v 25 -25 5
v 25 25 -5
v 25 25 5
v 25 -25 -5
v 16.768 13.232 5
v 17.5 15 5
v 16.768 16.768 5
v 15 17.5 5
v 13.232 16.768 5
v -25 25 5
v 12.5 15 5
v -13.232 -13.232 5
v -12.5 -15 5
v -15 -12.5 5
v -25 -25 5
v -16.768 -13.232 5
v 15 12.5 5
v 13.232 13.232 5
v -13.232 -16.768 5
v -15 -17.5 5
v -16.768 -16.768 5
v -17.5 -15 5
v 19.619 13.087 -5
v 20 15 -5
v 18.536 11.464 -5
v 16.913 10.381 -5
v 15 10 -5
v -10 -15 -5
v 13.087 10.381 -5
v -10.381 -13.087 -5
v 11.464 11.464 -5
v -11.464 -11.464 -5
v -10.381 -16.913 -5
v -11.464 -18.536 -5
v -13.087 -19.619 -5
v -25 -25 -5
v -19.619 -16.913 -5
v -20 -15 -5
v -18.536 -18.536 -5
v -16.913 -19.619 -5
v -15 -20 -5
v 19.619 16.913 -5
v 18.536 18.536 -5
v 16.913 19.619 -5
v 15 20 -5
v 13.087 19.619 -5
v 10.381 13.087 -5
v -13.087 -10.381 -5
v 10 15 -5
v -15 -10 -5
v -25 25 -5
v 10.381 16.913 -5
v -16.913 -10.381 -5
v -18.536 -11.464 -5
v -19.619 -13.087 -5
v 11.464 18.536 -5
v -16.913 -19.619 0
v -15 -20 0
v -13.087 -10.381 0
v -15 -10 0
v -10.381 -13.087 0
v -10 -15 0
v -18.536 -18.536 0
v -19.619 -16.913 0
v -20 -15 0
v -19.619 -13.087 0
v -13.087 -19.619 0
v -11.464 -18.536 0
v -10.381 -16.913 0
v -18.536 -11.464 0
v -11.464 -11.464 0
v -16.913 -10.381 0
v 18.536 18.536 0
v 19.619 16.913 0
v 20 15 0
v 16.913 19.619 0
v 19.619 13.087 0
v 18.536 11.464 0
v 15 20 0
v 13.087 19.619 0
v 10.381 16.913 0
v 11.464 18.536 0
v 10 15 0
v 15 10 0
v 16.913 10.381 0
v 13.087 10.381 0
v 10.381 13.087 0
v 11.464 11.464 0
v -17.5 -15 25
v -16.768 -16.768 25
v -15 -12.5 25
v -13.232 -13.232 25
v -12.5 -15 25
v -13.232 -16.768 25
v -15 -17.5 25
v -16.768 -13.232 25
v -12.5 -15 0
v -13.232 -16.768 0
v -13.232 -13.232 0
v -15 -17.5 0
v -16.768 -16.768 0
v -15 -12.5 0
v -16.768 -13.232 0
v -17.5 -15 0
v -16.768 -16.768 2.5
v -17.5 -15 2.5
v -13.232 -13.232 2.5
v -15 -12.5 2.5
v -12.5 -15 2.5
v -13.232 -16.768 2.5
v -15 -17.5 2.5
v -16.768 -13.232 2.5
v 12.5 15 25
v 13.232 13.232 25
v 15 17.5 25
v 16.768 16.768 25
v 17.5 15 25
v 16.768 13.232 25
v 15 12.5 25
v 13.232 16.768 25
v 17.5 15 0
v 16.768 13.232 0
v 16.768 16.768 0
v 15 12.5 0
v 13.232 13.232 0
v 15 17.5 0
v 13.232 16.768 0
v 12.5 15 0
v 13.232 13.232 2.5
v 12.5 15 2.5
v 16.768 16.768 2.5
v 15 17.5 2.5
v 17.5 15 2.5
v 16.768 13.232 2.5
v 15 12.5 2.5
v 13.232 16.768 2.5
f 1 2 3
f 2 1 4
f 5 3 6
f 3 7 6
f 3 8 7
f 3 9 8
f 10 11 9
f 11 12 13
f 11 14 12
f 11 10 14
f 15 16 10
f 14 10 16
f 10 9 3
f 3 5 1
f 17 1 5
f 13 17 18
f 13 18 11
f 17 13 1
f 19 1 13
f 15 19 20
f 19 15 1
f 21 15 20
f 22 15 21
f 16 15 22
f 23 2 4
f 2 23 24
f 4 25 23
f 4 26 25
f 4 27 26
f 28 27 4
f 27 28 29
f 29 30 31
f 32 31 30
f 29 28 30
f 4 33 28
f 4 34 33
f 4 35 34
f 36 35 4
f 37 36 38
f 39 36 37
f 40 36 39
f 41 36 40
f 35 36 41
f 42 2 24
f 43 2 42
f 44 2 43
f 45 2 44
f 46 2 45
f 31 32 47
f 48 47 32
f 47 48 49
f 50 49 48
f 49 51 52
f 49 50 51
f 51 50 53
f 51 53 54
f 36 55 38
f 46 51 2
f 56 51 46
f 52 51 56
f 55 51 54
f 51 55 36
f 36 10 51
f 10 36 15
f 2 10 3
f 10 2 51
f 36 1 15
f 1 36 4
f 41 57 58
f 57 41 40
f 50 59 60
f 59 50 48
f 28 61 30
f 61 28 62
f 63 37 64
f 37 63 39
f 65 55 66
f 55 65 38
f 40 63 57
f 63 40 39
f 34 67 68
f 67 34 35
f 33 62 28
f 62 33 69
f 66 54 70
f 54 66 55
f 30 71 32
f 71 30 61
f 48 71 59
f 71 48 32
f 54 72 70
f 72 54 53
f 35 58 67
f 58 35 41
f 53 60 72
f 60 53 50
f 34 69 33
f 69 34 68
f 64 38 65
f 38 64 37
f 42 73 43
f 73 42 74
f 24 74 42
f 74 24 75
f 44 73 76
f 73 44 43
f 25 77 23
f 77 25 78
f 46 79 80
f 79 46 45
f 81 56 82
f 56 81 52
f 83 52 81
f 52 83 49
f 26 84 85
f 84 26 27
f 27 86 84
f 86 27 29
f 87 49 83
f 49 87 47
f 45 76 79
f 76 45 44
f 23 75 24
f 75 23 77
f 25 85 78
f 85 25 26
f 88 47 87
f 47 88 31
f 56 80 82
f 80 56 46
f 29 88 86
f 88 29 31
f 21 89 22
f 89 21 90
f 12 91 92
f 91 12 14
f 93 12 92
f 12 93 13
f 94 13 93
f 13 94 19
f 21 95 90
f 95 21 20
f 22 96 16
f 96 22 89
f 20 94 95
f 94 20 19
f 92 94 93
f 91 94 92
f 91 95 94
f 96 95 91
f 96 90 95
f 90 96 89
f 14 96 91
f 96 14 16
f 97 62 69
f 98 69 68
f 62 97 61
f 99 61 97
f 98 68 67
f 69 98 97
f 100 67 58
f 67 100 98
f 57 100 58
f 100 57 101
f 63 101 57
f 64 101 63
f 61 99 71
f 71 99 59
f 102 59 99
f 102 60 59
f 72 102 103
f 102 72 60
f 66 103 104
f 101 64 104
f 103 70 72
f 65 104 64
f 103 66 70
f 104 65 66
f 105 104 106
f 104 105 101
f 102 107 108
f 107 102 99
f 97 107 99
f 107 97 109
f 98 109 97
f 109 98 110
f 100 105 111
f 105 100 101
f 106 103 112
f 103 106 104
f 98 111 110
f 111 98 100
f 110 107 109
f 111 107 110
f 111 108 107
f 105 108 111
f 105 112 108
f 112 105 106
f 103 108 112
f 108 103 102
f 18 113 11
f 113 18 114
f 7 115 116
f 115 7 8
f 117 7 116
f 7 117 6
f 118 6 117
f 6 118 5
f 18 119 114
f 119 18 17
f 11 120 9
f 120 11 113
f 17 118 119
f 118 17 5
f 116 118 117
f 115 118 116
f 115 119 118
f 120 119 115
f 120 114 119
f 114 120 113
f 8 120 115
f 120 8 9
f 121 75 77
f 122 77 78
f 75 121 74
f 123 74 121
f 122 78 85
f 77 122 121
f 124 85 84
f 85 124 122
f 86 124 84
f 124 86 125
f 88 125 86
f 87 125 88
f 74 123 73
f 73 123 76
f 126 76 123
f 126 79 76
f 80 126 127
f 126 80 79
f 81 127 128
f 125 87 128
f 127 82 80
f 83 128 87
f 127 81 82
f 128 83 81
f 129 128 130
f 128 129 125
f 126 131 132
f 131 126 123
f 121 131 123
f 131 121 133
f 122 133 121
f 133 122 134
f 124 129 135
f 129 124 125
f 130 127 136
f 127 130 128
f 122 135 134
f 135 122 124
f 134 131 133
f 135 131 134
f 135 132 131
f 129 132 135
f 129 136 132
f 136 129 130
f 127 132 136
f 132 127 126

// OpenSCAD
// Base Plate
module base_plate() {
    difference() {
        // Main rectangular block
        cube([50, 50, 10], center = true);
        
        // Circular through-holes
        translate([-15, -15, 0]) cylinder(r = 5, h = 20, center = true);
        translate([15, 15, 0]) cylinder(r = 5, h = 20, center = true);
    }
}

// Bolt
module bolt() {
    union() {
        // Cylindrical rod
        cylinder(r = 2.5, h = 20, center = false); // Shortened bolt length
        
        // Threading (simplified as a smaller cylinder for visualization)
        translate([0, 0, 10]) cylinder(r = 2.25, h = 10, center = false); // Adjusted threading length
    }
}

// Nut
module nut() {
    difference() {
        // Hexagonal prism
        rotate([0, 0, 30]) linear_extrude(height = 5) polygon(points = [[-3, -5], [3, -5], [5, -3], [5, 3], [3, 5], [-3, 5], [-5, 3], [-5, -3]]);
        
        // Internal threaded hole
        translate([0, 0, -2.5]) cylinder(r = 2.5, h = 10, center = true);
    }
}

// Assembly
module assembly() {
    // Layer 1: Base Plate
    base_plate();
    
    // Layer 2: Bolts and Nuts
    translate([-15, -15, 5]) {
        bolt();
        translate([0, 0, -5]) nut(); // Relocated nut to the underside of the base plate
    }
    translate([15, 15, 5]) {
        bolt();
        translate([0, 0, -5]) nut(); // Relocated nut to the underside of the base plate
    }
}

// Render the assembly
assembly();
